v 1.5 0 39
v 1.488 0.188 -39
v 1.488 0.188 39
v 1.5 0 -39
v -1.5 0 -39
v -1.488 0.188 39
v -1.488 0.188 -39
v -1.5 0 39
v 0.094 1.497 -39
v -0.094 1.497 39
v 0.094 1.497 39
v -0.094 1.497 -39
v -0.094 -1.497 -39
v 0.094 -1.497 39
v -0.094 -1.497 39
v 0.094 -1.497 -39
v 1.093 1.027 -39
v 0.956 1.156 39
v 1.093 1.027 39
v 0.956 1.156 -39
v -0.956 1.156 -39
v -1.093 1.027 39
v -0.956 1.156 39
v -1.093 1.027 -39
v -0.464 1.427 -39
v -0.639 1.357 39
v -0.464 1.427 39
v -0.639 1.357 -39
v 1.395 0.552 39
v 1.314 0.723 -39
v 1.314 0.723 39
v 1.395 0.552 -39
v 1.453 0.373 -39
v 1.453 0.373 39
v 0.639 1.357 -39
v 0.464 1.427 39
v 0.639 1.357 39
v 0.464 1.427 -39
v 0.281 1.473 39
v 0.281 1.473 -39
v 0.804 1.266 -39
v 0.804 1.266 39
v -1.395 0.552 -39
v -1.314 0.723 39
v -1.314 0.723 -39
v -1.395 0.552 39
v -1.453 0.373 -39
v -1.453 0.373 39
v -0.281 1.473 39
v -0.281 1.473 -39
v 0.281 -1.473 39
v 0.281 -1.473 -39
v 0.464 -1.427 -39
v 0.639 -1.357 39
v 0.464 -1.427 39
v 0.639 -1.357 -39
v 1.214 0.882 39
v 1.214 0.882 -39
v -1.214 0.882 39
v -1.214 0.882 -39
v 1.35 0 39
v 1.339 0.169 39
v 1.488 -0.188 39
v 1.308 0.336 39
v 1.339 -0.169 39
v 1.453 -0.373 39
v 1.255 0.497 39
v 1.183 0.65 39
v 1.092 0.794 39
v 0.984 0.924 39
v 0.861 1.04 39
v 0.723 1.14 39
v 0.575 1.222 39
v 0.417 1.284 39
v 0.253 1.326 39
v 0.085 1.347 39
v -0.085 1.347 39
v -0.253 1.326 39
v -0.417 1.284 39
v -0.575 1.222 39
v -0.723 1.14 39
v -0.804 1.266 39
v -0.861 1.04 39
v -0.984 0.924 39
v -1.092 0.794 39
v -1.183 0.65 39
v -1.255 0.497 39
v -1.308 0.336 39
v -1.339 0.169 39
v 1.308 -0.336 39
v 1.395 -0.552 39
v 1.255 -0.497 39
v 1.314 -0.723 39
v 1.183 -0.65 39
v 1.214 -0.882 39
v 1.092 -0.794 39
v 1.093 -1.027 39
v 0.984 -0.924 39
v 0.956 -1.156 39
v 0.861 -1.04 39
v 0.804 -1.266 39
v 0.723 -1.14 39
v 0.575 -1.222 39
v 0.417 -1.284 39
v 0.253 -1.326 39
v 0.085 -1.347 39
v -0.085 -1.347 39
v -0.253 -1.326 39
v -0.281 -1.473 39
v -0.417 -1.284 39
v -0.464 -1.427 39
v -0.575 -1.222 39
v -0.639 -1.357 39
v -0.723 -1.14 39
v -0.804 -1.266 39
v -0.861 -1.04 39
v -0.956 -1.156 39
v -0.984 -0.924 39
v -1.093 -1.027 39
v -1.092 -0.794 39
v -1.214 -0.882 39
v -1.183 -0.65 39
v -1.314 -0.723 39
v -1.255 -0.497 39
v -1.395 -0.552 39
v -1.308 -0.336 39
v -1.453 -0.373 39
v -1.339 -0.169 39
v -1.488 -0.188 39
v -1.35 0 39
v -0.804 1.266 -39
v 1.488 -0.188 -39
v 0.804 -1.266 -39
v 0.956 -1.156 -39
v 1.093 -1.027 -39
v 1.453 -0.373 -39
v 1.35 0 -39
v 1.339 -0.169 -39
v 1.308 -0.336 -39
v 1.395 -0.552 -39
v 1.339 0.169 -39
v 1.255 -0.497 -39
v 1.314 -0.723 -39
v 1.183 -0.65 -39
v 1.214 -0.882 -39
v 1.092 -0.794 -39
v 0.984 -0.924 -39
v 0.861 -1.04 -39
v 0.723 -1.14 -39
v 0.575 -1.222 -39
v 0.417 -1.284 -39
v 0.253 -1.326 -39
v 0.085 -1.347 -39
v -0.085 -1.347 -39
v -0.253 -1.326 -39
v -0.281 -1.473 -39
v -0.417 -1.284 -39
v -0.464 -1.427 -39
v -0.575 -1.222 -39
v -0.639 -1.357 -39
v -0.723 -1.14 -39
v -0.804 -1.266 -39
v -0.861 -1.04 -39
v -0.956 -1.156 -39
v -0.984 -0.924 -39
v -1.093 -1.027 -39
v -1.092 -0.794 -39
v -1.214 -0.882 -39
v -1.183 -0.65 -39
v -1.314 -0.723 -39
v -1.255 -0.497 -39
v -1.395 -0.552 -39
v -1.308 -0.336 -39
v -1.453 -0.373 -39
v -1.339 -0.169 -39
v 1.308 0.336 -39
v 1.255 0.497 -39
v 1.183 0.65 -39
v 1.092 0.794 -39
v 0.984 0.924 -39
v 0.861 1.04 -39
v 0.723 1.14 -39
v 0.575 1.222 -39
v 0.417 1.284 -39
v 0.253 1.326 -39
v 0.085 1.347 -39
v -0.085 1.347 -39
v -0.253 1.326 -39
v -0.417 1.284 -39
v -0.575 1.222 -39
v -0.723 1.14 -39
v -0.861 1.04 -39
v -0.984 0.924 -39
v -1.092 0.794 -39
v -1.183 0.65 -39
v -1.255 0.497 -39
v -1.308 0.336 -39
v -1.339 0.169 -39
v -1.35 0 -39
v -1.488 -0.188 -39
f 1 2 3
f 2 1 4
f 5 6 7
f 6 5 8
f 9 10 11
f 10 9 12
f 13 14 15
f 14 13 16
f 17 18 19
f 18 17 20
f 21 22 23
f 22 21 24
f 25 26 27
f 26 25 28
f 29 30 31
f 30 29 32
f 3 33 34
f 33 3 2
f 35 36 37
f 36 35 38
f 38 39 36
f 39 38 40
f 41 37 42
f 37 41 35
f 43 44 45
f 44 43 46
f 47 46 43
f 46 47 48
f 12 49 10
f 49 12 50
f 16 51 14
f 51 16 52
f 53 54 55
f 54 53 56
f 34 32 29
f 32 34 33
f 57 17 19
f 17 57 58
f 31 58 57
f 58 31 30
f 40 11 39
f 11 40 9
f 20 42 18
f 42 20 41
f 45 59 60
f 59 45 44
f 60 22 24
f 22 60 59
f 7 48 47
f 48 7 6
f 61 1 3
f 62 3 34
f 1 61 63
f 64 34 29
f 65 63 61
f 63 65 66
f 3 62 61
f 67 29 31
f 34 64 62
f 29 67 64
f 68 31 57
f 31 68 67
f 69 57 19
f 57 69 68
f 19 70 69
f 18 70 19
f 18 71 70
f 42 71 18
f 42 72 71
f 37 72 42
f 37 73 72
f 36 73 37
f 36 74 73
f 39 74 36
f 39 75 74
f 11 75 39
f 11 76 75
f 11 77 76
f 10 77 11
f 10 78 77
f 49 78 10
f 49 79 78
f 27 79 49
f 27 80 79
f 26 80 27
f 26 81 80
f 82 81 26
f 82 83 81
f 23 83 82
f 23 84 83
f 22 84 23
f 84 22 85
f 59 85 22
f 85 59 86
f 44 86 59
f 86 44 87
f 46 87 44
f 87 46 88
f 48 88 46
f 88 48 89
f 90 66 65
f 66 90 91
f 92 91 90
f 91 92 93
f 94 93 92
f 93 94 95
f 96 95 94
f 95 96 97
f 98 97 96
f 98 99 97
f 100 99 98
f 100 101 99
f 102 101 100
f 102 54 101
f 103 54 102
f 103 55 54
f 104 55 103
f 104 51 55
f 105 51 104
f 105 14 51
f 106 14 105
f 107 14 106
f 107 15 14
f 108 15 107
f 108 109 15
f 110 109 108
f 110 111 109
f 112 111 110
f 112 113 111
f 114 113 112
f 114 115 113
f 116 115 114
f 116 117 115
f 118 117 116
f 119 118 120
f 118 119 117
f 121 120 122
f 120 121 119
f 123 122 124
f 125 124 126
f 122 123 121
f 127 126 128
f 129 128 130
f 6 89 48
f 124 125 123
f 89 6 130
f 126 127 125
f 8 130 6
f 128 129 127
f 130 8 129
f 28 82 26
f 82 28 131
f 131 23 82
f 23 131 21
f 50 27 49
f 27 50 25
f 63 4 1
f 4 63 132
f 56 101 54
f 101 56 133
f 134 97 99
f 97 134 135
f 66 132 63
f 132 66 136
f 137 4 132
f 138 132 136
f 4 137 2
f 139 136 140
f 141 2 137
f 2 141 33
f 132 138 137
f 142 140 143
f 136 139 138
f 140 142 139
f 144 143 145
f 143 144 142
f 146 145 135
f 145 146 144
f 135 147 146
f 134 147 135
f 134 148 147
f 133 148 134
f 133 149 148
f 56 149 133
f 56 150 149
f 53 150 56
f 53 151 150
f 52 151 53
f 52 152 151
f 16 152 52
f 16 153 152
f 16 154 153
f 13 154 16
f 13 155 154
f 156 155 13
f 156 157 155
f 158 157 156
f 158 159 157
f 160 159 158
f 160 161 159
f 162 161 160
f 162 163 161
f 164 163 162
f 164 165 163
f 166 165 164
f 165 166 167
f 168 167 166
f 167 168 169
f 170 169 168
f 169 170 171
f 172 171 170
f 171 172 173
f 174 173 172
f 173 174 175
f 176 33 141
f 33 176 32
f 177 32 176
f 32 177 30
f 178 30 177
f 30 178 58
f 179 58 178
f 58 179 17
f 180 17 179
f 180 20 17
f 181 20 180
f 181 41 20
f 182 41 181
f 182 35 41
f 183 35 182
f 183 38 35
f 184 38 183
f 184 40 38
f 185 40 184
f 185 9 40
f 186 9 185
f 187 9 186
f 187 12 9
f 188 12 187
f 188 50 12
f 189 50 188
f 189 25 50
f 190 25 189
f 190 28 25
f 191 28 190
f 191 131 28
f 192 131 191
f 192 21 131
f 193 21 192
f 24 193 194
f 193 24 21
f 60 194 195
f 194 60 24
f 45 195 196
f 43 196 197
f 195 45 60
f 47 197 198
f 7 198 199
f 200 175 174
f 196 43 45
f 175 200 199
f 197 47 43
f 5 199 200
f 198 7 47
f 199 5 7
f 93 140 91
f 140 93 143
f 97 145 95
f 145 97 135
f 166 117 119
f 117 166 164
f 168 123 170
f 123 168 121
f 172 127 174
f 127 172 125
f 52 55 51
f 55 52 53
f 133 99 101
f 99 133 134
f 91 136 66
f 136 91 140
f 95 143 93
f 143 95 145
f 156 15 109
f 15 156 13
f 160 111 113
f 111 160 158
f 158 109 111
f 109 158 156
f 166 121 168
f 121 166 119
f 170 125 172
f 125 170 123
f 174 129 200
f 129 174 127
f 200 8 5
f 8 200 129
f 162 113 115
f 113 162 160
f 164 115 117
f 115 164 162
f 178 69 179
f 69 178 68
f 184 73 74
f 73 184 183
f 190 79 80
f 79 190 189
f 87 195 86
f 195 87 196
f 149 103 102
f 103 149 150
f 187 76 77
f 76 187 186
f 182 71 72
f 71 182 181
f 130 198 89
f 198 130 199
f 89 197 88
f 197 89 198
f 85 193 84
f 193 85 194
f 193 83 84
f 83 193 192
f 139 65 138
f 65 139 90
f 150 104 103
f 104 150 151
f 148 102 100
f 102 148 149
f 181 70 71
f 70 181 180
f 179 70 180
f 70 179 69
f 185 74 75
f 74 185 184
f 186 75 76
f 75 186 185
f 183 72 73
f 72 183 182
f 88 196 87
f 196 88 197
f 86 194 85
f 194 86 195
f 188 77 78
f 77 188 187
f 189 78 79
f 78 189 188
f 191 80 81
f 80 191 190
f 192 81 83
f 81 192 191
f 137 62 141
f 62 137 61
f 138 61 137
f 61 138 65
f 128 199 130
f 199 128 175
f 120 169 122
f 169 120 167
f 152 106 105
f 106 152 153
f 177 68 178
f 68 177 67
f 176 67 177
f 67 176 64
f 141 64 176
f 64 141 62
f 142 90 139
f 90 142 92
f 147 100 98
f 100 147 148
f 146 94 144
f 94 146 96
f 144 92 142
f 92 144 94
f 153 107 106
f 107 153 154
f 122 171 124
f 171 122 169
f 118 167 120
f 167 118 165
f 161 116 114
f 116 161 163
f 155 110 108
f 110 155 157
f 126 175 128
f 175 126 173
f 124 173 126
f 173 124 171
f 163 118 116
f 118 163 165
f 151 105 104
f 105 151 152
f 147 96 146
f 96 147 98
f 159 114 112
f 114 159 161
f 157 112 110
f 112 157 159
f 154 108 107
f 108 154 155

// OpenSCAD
$fn = 50;


difference() {
	union() {
		translate(v = [0, 0, -39.0000000000]) {
			cylinder(h = 78, r = 1.5000000000);
		}
	}
	union() {
		translate(v = [0, 0, -100.0000000000]) {
			cylinder(h = 200, r = 1.3500000000);
		}
	}
}
